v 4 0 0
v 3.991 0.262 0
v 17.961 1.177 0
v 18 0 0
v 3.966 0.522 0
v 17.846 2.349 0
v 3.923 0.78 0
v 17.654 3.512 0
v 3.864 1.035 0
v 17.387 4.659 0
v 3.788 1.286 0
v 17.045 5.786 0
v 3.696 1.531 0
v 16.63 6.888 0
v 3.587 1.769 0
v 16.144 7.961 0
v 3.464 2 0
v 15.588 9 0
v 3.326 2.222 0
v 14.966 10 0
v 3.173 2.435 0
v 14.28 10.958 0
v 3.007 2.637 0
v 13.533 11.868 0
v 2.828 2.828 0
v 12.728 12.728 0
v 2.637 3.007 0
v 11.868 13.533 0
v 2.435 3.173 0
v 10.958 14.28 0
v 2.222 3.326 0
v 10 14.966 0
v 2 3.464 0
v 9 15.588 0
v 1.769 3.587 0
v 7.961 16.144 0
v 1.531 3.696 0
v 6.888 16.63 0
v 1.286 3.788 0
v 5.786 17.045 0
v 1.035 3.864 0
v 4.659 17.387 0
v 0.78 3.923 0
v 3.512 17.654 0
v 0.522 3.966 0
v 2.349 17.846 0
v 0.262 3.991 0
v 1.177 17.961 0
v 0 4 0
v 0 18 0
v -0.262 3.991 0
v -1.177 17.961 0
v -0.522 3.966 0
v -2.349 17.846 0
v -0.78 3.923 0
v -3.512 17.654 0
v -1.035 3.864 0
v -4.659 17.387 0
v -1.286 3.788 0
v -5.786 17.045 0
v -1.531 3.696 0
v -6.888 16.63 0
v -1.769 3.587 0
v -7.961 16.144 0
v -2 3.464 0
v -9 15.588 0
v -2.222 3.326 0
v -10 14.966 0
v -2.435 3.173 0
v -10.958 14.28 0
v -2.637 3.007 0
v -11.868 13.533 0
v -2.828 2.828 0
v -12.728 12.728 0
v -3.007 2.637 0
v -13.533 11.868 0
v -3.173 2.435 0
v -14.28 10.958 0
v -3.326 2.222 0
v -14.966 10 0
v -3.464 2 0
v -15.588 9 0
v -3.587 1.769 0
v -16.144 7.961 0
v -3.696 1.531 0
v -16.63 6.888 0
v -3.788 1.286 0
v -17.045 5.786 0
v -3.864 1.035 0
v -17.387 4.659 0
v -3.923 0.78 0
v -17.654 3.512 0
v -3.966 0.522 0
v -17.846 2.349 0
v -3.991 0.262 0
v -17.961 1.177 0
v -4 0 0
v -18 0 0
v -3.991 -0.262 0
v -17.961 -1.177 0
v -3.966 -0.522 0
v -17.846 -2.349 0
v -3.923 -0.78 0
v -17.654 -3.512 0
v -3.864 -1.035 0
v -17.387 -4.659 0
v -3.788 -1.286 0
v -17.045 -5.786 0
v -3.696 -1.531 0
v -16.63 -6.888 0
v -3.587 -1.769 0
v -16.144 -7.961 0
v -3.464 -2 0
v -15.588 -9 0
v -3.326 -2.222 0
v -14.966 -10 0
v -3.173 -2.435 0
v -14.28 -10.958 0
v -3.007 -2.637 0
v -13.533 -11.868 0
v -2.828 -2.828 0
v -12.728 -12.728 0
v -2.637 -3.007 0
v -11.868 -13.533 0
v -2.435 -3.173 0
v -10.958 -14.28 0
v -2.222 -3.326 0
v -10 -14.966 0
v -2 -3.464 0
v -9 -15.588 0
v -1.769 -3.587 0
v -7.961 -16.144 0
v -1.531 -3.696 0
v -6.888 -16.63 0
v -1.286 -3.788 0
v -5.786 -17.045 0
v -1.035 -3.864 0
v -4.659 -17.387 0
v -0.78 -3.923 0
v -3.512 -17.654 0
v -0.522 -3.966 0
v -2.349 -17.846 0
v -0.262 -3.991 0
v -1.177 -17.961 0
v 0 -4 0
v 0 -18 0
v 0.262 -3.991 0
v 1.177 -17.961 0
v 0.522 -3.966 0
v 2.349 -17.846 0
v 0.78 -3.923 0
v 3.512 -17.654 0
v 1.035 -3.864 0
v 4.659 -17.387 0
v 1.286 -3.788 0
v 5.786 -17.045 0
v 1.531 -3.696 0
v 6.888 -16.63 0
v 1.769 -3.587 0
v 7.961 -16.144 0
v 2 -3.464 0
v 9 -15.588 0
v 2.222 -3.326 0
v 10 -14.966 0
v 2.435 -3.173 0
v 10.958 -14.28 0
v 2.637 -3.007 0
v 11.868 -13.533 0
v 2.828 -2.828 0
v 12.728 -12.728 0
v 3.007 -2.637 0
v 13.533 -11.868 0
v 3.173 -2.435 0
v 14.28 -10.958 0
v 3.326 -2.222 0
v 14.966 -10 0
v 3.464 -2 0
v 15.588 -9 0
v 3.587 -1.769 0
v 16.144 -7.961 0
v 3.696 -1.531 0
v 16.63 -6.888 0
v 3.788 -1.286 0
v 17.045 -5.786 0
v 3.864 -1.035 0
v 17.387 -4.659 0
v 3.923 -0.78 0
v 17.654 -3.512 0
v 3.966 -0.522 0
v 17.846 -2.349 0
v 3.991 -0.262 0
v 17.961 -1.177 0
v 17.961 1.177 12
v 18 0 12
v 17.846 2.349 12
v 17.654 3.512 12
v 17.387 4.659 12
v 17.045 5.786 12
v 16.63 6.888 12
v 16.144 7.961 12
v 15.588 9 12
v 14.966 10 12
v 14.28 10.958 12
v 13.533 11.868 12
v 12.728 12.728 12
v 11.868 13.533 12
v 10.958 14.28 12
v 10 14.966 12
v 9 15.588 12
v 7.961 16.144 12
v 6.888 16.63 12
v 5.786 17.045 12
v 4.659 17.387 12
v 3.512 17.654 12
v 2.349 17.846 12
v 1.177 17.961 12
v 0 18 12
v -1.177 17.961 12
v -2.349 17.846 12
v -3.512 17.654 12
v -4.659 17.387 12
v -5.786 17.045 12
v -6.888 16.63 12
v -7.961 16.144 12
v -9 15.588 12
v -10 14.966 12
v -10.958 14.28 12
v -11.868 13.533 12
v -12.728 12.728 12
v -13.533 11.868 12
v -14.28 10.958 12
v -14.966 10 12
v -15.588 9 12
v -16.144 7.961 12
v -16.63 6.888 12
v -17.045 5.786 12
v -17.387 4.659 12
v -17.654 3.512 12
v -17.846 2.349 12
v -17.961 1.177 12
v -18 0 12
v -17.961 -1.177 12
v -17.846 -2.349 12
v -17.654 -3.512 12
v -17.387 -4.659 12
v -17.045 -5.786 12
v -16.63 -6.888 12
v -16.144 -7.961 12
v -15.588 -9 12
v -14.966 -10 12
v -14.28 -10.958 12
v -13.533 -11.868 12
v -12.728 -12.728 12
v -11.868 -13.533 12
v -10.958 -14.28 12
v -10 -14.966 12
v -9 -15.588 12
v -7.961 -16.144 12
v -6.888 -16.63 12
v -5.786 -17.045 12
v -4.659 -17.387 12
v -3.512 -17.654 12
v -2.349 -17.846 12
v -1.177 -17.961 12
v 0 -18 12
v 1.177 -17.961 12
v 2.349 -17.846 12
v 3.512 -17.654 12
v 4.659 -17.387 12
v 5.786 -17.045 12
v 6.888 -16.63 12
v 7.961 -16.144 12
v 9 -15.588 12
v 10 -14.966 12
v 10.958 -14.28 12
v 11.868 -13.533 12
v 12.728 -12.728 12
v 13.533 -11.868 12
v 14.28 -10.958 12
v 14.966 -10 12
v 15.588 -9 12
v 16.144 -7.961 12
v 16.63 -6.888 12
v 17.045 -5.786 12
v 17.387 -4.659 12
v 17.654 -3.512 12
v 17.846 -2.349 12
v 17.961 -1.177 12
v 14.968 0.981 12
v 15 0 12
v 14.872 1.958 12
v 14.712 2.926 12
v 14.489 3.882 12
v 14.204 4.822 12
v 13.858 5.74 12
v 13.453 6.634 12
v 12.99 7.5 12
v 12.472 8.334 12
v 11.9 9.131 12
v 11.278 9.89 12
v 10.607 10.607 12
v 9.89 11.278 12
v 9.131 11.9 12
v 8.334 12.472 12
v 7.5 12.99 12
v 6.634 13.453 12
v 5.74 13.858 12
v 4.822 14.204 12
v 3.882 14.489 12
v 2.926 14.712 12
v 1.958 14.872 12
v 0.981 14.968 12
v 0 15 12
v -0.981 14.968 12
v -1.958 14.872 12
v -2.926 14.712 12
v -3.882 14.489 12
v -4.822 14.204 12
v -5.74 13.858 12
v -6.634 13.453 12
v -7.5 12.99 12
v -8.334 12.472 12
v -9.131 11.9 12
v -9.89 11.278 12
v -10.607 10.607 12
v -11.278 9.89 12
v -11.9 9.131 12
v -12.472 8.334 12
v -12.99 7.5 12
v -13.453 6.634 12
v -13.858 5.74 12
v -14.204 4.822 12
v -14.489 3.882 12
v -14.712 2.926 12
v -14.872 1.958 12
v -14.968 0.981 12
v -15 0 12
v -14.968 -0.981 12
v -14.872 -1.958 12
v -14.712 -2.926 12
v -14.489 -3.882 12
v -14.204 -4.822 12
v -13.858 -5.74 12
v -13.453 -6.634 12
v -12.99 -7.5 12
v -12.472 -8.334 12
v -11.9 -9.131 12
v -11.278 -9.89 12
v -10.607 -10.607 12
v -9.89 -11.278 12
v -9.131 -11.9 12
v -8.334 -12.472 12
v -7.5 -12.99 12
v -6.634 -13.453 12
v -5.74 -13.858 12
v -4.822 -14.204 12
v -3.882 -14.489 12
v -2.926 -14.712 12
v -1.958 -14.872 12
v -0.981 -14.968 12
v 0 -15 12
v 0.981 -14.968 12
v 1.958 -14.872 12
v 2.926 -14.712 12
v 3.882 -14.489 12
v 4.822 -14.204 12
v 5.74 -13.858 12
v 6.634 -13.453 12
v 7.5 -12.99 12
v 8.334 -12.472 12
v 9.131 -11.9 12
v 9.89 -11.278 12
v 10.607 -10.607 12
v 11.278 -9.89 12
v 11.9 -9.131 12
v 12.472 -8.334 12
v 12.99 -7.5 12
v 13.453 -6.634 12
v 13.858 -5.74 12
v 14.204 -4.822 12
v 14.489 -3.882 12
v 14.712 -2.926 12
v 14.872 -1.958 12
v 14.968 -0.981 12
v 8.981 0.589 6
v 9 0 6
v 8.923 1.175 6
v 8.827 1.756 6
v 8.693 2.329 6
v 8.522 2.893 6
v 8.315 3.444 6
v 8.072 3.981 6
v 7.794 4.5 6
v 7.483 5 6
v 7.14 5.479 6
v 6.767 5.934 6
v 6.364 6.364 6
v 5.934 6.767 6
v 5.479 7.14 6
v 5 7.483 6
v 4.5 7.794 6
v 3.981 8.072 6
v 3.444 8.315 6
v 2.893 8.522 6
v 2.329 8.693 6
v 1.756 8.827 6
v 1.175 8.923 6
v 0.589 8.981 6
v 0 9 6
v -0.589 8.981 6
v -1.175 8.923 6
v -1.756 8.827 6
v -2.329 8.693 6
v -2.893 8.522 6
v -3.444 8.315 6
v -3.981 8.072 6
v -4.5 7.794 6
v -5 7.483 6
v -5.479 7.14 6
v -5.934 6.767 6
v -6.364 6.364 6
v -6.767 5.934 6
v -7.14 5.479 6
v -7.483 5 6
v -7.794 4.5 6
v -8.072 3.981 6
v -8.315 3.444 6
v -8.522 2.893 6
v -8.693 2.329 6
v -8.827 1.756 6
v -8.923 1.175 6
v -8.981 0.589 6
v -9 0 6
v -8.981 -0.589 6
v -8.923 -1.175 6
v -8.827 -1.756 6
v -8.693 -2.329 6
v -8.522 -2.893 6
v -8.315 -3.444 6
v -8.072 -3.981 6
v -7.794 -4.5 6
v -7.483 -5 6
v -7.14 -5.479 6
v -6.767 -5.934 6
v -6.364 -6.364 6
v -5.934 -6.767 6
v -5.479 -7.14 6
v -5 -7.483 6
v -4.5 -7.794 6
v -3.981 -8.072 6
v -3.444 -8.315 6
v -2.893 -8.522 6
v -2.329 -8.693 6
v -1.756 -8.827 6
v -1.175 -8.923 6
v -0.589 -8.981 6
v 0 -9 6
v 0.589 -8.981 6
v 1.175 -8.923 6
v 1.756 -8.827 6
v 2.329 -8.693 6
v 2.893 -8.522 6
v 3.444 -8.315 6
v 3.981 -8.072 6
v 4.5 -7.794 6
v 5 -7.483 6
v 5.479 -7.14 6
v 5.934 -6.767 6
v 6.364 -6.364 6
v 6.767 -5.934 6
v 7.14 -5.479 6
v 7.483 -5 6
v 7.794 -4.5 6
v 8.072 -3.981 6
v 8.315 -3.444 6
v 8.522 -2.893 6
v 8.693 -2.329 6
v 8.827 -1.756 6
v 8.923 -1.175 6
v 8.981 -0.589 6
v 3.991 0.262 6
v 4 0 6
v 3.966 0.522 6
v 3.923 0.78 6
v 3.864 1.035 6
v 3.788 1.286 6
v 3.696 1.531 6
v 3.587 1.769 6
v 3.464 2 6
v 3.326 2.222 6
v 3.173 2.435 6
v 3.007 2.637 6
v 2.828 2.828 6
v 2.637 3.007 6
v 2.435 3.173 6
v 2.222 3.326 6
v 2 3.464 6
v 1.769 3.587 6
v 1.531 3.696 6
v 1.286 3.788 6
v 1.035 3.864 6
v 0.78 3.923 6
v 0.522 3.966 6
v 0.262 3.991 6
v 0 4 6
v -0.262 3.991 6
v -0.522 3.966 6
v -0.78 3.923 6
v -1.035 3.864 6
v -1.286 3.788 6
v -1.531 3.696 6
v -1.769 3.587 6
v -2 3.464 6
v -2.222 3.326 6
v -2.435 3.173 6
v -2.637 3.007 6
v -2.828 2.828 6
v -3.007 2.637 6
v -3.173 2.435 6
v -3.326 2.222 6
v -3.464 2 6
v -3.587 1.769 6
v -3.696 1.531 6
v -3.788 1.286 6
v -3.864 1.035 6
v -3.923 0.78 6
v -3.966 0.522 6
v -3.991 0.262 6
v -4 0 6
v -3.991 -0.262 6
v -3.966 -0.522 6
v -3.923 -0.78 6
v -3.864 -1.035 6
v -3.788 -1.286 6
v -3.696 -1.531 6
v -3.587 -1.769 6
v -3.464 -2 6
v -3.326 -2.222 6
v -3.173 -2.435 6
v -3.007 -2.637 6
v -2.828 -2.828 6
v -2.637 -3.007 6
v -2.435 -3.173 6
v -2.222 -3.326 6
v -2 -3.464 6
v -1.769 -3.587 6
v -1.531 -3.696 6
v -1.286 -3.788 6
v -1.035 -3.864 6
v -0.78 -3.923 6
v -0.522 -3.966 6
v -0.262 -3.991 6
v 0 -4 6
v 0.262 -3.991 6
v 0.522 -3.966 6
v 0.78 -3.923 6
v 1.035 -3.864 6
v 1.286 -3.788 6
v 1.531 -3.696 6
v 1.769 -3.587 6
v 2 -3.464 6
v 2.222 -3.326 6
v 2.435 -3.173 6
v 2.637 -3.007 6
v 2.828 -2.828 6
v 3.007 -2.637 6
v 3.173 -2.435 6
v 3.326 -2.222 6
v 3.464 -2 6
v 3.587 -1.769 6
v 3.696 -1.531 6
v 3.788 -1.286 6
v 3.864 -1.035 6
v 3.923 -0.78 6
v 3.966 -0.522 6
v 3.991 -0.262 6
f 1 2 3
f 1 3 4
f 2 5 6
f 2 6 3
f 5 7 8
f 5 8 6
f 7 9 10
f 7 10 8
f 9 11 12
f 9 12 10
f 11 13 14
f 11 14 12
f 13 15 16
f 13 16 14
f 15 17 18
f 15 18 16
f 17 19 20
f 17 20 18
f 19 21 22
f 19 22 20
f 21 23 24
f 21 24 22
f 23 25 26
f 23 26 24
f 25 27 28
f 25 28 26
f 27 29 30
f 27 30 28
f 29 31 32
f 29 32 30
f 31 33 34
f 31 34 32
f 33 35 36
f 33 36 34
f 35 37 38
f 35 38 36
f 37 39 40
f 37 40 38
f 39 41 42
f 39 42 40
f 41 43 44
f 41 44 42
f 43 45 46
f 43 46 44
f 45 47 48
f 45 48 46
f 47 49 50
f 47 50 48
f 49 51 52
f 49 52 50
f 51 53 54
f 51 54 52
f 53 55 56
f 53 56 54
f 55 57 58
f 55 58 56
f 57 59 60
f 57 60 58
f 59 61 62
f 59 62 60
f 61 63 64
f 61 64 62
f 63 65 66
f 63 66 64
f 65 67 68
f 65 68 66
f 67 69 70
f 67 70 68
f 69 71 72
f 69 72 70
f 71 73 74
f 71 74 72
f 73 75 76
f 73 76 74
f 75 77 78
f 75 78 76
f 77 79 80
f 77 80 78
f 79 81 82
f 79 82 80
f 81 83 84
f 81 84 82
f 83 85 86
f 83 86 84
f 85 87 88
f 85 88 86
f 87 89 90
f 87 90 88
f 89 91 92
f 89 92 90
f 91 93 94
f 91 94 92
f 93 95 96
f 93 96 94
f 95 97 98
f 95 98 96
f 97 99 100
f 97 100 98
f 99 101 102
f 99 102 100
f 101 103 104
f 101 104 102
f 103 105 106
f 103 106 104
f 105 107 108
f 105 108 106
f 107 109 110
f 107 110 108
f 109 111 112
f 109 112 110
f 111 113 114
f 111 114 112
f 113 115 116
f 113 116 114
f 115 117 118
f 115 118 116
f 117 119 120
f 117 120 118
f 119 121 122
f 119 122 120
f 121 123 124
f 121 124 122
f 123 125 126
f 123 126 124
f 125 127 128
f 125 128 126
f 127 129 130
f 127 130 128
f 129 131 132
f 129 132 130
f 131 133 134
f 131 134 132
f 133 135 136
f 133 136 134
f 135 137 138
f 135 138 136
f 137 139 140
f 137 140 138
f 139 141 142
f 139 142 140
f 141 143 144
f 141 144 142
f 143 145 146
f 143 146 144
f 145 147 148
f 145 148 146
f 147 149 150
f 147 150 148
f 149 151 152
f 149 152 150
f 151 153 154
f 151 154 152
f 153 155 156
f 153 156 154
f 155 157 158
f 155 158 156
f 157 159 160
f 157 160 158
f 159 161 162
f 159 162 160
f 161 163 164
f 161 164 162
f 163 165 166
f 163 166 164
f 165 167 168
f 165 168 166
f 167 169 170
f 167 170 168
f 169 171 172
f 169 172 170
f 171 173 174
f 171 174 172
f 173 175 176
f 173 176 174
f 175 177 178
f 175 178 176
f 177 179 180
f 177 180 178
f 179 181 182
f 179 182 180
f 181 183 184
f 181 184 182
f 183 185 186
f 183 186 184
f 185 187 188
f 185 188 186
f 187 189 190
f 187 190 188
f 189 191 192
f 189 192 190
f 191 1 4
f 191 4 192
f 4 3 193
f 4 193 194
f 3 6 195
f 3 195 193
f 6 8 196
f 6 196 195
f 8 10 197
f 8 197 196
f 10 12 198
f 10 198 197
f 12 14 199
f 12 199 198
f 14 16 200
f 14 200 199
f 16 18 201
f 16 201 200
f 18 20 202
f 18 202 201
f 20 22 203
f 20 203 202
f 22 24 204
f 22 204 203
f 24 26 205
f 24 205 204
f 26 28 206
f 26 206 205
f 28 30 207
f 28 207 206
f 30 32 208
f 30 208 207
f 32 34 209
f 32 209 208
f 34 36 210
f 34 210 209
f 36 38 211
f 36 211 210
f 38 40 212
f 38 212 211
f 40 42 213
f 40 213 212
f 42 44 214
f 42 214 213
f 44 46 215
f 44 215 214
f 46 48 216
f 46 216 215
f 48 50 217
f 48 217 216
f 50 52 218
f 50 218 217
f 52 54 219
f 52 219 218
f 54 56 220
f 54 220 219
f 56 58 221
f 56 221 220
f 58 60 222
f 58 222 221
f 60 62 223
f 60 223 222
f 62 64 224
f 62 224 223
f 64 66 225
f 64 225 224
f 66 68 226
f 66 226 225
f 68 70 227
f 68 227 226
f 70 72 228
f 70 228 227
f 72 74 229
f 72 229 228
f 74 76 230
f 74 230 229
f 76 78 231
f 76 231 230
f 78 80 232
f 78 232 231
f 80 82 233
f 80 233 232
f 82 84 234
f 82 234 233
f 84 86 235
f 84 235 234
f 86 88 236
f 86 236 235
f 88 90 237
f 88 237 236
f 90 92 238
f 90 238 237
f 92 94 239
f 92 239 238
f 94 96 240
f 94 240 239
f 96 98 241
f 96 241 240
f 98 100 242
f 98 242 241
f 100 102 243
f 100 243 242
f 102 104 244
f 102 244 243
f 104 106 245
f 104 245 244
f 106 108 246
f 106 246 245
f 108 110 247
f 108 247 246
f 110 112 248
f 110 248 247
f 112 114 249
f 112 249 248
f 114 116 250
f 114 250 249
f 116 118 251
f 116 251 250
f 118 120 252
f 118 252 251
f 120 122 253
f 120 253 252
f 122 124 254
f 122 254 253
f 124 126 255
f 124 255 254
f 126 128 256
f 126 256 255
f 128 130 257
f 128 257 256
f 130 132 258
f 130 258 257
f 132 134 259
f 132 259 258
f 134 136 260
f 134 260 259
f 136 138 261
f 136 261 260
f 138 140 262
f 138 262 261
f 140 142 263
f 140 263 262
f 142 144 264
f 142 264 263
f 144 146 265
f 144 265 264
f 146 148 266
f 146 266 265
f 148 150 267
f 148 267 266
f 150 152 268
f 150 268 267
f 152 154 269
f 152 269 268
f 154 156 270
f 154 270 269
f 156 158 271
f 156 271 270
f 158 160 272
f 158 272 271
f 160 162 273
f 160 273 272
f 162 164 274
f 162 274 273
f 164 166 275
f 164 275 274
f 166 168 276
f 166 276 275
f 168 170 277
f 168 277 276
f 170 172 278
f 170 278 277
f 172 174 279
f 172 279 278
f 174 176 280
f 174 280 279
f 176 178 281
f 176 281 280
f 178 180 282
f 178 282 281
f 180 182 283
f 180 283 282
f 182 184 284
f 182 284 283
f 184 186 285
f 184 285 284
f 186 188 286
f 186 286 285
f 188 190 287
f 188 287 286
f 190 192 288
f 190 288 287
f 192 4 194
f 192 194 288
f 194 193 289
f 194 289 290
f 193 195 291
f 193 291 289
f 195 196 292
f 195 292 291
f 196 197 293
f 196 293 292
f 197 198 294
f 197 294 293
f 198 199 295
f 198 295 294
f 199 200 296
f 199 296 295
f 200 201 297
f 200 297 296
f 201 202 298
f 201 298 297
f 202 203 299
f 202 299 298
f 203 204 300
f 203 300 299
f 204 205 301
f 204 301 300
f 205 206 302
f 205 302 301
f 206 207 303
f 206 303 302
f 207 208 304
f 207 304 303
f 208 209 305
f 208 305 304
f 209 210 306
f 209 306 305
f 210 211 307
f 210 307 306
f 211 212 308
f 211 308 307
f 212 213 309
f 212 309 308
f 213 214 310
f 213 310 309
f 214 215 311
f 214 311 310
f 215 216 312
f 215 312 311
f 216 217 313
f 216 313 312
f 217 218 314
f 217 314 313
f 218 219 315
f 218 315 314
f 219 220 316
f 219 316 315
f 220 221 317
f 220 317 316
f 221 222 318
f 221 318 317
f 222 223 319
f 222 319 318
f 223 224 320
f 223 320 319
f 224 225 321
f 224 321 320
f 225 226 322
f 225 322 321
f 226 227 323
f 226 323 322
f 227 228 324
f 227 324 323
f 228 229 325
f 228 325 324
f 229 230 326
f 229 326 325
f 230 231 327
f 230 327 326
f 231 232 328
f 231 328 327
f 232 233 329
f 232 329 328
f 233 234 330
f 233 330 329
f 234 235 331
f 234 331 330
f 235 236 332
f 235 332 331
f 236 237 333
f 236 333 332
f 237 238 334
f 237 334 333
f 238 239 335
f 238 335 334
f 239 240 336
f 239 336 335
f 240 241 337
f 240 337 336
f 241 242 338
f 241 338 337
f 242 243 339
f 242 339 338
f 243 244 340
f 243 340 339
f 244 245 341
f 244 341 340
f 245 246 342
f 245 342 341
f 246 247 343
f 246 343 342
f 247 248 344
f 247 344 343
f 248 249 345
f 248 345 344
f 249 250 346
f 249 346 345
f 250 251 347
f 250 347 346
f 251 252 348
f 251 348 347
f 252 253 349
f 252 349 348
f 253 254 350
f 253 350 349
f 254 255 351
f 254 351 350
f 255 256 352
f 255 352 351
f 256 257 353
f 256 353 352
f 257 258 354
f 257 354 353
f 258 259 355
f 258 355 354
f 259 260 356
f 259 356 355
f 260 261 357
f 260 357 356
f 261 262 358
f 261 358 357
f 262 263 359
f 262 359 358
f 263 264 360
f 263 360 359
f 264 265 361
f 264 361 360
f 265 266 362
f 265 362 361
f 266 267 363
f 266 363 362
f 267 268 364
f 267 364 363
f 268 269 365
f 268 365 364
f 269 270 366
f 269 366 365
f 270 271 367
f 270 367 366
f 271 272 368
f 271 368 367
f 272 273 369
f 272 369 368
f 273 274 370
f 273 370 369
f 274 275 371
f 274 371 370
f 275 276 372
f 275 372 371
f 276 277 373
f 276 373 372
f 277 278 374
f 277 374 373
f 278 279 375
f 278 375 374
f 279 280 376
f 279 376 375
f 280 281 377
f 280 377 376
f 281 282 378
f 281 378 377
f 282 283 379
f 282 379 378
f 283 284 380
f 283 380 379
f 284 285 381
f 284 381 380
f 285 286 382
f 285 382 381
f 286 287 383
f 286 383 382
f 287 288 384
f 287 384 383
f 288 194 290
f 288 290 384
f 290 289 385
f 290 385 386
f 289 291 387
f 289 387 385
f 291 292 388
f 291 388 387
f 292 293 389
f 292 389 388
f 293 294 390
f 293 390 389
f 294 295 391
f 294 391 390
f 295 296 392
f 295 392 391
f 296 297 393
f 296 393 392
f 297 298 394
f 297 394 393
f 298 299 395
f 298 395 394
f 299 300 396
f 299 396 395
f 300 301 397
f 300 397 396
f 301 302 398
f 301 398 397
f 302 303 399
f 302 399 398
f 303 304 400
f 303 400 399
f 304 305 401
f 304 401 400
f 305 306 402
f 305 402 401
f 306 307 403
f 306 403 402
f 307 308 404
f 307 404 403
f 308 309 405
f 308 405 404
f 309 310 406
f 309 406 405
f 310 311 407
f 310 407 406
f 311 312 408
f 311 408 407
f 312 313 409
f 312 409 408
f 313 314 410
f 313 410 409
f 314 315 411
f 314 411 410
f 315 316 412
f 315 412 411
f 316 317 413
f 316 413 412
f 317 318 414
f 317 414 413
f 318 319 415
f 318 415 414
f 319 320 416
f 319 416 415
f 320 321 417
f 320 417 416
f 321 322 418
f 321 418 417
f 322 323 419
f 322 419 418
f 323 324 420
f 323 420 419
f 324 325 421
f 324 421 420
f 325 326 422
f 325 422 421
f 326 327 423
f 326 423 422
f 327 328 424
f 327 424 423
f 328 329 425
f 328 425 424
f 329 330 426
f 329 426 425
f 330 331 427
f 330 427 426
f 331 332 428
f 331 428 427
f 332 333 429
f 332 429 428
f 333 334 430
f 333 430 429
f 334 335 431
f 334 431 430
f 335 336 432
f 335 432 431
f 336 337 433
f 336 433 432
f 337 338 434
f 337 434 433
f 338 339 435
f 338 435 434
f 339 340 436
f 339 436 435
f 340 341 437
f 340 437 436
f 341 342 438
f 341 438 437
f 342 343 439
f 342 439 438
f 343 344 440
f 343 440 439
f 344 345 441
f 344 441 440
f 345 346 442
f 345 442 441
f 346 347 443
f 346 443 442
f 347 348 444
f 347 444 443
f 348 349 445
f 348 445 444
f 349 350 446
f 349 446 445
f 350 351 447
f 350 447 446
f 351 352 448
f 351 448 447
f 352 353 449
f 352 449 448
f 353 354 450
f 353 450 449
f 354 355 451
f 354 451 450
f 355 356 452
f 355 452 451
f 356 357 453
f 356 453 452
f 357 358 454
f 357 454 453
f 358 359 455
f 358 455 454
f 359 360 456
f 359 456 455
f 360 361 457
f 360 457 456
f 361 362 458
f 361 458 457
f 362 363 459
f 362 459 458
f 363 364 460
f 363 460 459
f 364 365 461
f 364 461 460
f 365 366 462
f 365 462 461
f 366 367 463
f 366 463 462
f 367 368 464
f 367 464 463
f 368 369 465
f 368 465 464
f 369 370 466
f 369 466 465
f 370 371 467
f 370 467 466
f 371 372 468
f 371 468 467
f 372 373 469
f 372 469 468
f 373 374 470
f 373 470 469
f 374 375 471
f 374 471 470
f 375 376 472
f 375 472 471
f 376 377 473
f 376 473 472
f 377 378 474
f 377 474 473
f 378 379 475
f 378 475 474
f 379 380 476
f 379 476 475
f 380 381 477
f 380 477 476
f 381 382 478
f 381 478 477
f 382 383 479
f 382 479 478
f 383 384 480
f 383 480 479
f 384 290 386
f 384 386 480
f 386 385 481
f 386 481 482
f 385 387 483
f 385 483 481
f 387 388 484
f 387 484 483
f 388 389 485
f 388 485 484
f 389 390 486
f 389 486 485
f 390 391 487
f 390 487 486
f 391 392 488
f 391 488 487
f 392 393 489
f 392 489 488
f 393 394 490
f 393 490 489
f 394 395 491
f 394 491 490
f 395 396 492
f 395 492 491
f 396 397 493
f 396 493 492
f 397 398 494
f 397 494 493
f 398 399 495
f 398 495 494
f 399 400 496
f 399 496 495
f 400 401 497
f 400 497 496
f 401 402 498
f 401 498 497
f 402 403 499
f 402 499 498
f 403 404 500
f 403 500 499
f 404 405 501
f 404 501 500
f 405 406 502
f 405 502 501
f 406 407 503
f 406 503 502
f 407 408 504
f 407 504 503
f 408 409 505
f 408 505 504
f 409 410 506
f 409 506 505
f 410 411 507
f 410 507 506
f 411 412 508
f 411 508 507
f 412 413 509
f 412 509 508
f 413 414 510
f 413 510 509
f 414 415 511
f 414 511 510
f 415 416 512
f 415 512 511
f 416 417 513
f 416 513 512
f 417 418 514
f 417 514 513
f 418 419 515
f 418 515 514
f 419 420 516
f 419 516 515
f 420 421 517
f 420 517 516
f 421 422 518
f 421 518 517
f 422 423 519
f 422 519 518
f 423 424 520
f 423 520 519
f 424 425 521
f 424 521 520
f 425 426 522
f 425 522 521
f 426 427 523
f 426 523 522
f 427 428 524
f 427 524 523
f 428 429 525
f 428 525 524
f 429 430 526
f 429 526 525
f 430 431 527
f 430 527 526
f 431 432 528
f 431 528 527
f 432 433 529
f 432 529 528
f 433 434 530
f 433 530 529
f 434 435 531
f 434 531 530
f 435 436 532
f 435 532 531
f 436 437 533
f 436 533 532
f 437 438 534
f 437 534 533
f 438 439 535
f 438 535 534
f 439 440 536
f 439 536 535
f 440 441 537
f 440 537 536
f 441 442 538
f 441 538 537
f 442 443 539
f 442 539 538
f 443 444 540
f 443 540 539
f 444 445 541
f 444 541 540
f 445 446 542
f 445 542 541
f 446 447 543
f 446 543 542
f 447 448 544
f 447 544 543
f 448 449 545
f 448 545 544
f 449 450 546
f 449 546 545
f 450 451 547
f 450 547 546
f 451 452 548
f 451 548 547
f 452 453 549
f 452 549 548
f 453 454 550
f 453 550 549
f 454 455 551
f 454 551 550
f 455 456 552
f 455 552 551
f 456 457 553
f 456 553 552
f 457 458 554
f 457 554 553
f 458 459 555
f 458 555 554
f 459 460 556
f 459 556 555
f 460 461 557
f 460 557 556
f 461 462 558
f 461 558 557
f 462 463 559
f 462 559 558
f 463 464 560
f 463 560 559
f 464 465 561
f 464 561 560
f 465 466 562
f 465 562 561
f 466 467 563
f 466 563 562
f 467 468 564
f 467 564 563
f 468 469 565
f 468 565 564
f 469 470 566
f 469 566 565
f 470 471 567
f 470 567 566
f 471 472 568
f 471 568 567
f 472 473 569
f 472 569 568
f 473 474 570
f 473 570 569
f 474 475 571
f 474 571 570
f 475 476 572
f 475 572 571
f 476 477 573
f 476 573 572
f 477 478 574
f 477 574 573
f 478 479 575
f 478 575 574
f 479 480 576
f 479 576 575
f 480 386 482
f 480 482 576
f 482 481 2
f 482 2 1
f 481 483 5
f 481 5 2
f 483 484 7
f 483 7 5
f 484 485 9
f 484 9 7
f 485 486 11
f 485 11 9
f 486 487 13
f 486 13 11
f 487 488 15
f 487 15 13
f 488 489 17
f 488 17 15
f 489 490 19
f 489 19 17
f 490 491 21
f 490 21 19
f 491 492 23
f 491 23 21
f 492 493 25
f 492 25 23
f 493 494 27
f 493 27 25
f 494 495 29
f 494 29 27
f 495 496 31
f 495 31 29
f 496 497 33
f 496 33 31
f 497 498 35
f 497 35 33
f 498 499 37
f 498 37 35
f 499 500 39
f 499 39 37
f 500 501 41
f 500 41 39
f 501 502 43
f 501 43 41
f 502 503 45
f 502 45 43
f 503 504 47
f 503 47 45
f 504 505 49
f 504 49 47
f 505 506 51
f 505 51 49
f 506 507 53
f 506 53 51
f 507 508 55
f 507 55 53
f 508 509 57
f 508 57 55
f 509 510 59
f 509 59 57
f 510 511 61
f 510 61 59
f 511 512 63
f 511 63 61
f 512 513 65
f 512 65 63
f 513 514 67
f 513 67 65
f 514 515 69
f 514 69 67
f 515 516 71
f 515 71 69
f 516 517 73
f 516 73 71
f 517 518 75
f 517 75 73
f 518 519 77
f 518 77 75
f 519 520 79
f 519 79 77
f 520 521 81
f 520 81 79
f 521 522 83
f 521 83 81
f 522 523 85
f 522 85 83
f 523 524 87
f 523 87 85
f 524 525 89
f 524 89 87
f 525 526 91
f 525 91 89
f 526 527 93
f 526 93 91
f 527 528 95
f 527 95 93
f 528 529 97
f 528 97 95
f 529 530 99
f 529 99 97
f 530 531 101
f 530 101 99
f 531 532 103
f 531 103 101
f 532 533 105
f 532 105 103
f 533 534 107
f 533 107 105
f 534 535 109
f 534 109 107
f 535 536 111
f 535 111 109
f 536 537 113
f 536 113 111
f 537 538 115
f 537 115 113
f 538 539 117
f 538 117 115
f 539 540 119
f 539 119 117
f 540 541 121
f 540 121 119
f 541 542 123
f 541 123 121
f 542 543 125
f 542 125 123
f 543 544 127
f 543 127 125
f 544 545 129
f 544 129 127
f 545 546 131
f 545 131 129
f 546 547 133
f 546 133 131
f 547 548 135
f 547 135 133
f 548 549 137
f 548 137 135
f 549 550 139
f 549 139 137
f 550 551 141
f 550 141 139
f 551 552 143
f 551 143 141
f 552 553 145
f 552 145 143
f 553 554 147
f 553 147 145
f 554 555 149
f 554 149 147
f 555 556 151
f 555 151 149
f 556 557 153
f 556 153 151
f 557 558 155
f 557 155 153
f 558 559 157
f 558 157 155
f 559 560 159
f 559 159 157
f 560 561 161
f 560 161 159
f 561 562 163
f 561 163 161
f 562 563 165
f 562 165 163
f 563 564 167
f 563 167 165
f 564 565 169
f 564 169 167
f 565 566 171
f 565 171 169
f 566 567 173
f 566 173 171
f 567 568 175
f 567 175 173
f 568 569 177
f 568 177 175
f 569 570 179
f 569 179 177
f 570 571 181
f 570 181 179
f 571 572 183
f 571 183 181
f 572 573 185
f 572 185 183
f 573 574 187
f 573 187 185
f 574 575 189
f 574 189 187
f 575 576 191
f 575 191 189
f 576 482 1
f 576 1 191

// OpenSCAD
// Original MechIntel educational model. CC0-1.0. Units: mm.
// Not a standardized or load-rated component.
$fn=96;
// Section points: [radius, height], mm. Edit to change the profile.
section=[[4, 0], [18, 0], [18, 12], [15, 12], [9, 6], [4, 6]];
rotate_extrude($fn=96) polygon(points=section);
